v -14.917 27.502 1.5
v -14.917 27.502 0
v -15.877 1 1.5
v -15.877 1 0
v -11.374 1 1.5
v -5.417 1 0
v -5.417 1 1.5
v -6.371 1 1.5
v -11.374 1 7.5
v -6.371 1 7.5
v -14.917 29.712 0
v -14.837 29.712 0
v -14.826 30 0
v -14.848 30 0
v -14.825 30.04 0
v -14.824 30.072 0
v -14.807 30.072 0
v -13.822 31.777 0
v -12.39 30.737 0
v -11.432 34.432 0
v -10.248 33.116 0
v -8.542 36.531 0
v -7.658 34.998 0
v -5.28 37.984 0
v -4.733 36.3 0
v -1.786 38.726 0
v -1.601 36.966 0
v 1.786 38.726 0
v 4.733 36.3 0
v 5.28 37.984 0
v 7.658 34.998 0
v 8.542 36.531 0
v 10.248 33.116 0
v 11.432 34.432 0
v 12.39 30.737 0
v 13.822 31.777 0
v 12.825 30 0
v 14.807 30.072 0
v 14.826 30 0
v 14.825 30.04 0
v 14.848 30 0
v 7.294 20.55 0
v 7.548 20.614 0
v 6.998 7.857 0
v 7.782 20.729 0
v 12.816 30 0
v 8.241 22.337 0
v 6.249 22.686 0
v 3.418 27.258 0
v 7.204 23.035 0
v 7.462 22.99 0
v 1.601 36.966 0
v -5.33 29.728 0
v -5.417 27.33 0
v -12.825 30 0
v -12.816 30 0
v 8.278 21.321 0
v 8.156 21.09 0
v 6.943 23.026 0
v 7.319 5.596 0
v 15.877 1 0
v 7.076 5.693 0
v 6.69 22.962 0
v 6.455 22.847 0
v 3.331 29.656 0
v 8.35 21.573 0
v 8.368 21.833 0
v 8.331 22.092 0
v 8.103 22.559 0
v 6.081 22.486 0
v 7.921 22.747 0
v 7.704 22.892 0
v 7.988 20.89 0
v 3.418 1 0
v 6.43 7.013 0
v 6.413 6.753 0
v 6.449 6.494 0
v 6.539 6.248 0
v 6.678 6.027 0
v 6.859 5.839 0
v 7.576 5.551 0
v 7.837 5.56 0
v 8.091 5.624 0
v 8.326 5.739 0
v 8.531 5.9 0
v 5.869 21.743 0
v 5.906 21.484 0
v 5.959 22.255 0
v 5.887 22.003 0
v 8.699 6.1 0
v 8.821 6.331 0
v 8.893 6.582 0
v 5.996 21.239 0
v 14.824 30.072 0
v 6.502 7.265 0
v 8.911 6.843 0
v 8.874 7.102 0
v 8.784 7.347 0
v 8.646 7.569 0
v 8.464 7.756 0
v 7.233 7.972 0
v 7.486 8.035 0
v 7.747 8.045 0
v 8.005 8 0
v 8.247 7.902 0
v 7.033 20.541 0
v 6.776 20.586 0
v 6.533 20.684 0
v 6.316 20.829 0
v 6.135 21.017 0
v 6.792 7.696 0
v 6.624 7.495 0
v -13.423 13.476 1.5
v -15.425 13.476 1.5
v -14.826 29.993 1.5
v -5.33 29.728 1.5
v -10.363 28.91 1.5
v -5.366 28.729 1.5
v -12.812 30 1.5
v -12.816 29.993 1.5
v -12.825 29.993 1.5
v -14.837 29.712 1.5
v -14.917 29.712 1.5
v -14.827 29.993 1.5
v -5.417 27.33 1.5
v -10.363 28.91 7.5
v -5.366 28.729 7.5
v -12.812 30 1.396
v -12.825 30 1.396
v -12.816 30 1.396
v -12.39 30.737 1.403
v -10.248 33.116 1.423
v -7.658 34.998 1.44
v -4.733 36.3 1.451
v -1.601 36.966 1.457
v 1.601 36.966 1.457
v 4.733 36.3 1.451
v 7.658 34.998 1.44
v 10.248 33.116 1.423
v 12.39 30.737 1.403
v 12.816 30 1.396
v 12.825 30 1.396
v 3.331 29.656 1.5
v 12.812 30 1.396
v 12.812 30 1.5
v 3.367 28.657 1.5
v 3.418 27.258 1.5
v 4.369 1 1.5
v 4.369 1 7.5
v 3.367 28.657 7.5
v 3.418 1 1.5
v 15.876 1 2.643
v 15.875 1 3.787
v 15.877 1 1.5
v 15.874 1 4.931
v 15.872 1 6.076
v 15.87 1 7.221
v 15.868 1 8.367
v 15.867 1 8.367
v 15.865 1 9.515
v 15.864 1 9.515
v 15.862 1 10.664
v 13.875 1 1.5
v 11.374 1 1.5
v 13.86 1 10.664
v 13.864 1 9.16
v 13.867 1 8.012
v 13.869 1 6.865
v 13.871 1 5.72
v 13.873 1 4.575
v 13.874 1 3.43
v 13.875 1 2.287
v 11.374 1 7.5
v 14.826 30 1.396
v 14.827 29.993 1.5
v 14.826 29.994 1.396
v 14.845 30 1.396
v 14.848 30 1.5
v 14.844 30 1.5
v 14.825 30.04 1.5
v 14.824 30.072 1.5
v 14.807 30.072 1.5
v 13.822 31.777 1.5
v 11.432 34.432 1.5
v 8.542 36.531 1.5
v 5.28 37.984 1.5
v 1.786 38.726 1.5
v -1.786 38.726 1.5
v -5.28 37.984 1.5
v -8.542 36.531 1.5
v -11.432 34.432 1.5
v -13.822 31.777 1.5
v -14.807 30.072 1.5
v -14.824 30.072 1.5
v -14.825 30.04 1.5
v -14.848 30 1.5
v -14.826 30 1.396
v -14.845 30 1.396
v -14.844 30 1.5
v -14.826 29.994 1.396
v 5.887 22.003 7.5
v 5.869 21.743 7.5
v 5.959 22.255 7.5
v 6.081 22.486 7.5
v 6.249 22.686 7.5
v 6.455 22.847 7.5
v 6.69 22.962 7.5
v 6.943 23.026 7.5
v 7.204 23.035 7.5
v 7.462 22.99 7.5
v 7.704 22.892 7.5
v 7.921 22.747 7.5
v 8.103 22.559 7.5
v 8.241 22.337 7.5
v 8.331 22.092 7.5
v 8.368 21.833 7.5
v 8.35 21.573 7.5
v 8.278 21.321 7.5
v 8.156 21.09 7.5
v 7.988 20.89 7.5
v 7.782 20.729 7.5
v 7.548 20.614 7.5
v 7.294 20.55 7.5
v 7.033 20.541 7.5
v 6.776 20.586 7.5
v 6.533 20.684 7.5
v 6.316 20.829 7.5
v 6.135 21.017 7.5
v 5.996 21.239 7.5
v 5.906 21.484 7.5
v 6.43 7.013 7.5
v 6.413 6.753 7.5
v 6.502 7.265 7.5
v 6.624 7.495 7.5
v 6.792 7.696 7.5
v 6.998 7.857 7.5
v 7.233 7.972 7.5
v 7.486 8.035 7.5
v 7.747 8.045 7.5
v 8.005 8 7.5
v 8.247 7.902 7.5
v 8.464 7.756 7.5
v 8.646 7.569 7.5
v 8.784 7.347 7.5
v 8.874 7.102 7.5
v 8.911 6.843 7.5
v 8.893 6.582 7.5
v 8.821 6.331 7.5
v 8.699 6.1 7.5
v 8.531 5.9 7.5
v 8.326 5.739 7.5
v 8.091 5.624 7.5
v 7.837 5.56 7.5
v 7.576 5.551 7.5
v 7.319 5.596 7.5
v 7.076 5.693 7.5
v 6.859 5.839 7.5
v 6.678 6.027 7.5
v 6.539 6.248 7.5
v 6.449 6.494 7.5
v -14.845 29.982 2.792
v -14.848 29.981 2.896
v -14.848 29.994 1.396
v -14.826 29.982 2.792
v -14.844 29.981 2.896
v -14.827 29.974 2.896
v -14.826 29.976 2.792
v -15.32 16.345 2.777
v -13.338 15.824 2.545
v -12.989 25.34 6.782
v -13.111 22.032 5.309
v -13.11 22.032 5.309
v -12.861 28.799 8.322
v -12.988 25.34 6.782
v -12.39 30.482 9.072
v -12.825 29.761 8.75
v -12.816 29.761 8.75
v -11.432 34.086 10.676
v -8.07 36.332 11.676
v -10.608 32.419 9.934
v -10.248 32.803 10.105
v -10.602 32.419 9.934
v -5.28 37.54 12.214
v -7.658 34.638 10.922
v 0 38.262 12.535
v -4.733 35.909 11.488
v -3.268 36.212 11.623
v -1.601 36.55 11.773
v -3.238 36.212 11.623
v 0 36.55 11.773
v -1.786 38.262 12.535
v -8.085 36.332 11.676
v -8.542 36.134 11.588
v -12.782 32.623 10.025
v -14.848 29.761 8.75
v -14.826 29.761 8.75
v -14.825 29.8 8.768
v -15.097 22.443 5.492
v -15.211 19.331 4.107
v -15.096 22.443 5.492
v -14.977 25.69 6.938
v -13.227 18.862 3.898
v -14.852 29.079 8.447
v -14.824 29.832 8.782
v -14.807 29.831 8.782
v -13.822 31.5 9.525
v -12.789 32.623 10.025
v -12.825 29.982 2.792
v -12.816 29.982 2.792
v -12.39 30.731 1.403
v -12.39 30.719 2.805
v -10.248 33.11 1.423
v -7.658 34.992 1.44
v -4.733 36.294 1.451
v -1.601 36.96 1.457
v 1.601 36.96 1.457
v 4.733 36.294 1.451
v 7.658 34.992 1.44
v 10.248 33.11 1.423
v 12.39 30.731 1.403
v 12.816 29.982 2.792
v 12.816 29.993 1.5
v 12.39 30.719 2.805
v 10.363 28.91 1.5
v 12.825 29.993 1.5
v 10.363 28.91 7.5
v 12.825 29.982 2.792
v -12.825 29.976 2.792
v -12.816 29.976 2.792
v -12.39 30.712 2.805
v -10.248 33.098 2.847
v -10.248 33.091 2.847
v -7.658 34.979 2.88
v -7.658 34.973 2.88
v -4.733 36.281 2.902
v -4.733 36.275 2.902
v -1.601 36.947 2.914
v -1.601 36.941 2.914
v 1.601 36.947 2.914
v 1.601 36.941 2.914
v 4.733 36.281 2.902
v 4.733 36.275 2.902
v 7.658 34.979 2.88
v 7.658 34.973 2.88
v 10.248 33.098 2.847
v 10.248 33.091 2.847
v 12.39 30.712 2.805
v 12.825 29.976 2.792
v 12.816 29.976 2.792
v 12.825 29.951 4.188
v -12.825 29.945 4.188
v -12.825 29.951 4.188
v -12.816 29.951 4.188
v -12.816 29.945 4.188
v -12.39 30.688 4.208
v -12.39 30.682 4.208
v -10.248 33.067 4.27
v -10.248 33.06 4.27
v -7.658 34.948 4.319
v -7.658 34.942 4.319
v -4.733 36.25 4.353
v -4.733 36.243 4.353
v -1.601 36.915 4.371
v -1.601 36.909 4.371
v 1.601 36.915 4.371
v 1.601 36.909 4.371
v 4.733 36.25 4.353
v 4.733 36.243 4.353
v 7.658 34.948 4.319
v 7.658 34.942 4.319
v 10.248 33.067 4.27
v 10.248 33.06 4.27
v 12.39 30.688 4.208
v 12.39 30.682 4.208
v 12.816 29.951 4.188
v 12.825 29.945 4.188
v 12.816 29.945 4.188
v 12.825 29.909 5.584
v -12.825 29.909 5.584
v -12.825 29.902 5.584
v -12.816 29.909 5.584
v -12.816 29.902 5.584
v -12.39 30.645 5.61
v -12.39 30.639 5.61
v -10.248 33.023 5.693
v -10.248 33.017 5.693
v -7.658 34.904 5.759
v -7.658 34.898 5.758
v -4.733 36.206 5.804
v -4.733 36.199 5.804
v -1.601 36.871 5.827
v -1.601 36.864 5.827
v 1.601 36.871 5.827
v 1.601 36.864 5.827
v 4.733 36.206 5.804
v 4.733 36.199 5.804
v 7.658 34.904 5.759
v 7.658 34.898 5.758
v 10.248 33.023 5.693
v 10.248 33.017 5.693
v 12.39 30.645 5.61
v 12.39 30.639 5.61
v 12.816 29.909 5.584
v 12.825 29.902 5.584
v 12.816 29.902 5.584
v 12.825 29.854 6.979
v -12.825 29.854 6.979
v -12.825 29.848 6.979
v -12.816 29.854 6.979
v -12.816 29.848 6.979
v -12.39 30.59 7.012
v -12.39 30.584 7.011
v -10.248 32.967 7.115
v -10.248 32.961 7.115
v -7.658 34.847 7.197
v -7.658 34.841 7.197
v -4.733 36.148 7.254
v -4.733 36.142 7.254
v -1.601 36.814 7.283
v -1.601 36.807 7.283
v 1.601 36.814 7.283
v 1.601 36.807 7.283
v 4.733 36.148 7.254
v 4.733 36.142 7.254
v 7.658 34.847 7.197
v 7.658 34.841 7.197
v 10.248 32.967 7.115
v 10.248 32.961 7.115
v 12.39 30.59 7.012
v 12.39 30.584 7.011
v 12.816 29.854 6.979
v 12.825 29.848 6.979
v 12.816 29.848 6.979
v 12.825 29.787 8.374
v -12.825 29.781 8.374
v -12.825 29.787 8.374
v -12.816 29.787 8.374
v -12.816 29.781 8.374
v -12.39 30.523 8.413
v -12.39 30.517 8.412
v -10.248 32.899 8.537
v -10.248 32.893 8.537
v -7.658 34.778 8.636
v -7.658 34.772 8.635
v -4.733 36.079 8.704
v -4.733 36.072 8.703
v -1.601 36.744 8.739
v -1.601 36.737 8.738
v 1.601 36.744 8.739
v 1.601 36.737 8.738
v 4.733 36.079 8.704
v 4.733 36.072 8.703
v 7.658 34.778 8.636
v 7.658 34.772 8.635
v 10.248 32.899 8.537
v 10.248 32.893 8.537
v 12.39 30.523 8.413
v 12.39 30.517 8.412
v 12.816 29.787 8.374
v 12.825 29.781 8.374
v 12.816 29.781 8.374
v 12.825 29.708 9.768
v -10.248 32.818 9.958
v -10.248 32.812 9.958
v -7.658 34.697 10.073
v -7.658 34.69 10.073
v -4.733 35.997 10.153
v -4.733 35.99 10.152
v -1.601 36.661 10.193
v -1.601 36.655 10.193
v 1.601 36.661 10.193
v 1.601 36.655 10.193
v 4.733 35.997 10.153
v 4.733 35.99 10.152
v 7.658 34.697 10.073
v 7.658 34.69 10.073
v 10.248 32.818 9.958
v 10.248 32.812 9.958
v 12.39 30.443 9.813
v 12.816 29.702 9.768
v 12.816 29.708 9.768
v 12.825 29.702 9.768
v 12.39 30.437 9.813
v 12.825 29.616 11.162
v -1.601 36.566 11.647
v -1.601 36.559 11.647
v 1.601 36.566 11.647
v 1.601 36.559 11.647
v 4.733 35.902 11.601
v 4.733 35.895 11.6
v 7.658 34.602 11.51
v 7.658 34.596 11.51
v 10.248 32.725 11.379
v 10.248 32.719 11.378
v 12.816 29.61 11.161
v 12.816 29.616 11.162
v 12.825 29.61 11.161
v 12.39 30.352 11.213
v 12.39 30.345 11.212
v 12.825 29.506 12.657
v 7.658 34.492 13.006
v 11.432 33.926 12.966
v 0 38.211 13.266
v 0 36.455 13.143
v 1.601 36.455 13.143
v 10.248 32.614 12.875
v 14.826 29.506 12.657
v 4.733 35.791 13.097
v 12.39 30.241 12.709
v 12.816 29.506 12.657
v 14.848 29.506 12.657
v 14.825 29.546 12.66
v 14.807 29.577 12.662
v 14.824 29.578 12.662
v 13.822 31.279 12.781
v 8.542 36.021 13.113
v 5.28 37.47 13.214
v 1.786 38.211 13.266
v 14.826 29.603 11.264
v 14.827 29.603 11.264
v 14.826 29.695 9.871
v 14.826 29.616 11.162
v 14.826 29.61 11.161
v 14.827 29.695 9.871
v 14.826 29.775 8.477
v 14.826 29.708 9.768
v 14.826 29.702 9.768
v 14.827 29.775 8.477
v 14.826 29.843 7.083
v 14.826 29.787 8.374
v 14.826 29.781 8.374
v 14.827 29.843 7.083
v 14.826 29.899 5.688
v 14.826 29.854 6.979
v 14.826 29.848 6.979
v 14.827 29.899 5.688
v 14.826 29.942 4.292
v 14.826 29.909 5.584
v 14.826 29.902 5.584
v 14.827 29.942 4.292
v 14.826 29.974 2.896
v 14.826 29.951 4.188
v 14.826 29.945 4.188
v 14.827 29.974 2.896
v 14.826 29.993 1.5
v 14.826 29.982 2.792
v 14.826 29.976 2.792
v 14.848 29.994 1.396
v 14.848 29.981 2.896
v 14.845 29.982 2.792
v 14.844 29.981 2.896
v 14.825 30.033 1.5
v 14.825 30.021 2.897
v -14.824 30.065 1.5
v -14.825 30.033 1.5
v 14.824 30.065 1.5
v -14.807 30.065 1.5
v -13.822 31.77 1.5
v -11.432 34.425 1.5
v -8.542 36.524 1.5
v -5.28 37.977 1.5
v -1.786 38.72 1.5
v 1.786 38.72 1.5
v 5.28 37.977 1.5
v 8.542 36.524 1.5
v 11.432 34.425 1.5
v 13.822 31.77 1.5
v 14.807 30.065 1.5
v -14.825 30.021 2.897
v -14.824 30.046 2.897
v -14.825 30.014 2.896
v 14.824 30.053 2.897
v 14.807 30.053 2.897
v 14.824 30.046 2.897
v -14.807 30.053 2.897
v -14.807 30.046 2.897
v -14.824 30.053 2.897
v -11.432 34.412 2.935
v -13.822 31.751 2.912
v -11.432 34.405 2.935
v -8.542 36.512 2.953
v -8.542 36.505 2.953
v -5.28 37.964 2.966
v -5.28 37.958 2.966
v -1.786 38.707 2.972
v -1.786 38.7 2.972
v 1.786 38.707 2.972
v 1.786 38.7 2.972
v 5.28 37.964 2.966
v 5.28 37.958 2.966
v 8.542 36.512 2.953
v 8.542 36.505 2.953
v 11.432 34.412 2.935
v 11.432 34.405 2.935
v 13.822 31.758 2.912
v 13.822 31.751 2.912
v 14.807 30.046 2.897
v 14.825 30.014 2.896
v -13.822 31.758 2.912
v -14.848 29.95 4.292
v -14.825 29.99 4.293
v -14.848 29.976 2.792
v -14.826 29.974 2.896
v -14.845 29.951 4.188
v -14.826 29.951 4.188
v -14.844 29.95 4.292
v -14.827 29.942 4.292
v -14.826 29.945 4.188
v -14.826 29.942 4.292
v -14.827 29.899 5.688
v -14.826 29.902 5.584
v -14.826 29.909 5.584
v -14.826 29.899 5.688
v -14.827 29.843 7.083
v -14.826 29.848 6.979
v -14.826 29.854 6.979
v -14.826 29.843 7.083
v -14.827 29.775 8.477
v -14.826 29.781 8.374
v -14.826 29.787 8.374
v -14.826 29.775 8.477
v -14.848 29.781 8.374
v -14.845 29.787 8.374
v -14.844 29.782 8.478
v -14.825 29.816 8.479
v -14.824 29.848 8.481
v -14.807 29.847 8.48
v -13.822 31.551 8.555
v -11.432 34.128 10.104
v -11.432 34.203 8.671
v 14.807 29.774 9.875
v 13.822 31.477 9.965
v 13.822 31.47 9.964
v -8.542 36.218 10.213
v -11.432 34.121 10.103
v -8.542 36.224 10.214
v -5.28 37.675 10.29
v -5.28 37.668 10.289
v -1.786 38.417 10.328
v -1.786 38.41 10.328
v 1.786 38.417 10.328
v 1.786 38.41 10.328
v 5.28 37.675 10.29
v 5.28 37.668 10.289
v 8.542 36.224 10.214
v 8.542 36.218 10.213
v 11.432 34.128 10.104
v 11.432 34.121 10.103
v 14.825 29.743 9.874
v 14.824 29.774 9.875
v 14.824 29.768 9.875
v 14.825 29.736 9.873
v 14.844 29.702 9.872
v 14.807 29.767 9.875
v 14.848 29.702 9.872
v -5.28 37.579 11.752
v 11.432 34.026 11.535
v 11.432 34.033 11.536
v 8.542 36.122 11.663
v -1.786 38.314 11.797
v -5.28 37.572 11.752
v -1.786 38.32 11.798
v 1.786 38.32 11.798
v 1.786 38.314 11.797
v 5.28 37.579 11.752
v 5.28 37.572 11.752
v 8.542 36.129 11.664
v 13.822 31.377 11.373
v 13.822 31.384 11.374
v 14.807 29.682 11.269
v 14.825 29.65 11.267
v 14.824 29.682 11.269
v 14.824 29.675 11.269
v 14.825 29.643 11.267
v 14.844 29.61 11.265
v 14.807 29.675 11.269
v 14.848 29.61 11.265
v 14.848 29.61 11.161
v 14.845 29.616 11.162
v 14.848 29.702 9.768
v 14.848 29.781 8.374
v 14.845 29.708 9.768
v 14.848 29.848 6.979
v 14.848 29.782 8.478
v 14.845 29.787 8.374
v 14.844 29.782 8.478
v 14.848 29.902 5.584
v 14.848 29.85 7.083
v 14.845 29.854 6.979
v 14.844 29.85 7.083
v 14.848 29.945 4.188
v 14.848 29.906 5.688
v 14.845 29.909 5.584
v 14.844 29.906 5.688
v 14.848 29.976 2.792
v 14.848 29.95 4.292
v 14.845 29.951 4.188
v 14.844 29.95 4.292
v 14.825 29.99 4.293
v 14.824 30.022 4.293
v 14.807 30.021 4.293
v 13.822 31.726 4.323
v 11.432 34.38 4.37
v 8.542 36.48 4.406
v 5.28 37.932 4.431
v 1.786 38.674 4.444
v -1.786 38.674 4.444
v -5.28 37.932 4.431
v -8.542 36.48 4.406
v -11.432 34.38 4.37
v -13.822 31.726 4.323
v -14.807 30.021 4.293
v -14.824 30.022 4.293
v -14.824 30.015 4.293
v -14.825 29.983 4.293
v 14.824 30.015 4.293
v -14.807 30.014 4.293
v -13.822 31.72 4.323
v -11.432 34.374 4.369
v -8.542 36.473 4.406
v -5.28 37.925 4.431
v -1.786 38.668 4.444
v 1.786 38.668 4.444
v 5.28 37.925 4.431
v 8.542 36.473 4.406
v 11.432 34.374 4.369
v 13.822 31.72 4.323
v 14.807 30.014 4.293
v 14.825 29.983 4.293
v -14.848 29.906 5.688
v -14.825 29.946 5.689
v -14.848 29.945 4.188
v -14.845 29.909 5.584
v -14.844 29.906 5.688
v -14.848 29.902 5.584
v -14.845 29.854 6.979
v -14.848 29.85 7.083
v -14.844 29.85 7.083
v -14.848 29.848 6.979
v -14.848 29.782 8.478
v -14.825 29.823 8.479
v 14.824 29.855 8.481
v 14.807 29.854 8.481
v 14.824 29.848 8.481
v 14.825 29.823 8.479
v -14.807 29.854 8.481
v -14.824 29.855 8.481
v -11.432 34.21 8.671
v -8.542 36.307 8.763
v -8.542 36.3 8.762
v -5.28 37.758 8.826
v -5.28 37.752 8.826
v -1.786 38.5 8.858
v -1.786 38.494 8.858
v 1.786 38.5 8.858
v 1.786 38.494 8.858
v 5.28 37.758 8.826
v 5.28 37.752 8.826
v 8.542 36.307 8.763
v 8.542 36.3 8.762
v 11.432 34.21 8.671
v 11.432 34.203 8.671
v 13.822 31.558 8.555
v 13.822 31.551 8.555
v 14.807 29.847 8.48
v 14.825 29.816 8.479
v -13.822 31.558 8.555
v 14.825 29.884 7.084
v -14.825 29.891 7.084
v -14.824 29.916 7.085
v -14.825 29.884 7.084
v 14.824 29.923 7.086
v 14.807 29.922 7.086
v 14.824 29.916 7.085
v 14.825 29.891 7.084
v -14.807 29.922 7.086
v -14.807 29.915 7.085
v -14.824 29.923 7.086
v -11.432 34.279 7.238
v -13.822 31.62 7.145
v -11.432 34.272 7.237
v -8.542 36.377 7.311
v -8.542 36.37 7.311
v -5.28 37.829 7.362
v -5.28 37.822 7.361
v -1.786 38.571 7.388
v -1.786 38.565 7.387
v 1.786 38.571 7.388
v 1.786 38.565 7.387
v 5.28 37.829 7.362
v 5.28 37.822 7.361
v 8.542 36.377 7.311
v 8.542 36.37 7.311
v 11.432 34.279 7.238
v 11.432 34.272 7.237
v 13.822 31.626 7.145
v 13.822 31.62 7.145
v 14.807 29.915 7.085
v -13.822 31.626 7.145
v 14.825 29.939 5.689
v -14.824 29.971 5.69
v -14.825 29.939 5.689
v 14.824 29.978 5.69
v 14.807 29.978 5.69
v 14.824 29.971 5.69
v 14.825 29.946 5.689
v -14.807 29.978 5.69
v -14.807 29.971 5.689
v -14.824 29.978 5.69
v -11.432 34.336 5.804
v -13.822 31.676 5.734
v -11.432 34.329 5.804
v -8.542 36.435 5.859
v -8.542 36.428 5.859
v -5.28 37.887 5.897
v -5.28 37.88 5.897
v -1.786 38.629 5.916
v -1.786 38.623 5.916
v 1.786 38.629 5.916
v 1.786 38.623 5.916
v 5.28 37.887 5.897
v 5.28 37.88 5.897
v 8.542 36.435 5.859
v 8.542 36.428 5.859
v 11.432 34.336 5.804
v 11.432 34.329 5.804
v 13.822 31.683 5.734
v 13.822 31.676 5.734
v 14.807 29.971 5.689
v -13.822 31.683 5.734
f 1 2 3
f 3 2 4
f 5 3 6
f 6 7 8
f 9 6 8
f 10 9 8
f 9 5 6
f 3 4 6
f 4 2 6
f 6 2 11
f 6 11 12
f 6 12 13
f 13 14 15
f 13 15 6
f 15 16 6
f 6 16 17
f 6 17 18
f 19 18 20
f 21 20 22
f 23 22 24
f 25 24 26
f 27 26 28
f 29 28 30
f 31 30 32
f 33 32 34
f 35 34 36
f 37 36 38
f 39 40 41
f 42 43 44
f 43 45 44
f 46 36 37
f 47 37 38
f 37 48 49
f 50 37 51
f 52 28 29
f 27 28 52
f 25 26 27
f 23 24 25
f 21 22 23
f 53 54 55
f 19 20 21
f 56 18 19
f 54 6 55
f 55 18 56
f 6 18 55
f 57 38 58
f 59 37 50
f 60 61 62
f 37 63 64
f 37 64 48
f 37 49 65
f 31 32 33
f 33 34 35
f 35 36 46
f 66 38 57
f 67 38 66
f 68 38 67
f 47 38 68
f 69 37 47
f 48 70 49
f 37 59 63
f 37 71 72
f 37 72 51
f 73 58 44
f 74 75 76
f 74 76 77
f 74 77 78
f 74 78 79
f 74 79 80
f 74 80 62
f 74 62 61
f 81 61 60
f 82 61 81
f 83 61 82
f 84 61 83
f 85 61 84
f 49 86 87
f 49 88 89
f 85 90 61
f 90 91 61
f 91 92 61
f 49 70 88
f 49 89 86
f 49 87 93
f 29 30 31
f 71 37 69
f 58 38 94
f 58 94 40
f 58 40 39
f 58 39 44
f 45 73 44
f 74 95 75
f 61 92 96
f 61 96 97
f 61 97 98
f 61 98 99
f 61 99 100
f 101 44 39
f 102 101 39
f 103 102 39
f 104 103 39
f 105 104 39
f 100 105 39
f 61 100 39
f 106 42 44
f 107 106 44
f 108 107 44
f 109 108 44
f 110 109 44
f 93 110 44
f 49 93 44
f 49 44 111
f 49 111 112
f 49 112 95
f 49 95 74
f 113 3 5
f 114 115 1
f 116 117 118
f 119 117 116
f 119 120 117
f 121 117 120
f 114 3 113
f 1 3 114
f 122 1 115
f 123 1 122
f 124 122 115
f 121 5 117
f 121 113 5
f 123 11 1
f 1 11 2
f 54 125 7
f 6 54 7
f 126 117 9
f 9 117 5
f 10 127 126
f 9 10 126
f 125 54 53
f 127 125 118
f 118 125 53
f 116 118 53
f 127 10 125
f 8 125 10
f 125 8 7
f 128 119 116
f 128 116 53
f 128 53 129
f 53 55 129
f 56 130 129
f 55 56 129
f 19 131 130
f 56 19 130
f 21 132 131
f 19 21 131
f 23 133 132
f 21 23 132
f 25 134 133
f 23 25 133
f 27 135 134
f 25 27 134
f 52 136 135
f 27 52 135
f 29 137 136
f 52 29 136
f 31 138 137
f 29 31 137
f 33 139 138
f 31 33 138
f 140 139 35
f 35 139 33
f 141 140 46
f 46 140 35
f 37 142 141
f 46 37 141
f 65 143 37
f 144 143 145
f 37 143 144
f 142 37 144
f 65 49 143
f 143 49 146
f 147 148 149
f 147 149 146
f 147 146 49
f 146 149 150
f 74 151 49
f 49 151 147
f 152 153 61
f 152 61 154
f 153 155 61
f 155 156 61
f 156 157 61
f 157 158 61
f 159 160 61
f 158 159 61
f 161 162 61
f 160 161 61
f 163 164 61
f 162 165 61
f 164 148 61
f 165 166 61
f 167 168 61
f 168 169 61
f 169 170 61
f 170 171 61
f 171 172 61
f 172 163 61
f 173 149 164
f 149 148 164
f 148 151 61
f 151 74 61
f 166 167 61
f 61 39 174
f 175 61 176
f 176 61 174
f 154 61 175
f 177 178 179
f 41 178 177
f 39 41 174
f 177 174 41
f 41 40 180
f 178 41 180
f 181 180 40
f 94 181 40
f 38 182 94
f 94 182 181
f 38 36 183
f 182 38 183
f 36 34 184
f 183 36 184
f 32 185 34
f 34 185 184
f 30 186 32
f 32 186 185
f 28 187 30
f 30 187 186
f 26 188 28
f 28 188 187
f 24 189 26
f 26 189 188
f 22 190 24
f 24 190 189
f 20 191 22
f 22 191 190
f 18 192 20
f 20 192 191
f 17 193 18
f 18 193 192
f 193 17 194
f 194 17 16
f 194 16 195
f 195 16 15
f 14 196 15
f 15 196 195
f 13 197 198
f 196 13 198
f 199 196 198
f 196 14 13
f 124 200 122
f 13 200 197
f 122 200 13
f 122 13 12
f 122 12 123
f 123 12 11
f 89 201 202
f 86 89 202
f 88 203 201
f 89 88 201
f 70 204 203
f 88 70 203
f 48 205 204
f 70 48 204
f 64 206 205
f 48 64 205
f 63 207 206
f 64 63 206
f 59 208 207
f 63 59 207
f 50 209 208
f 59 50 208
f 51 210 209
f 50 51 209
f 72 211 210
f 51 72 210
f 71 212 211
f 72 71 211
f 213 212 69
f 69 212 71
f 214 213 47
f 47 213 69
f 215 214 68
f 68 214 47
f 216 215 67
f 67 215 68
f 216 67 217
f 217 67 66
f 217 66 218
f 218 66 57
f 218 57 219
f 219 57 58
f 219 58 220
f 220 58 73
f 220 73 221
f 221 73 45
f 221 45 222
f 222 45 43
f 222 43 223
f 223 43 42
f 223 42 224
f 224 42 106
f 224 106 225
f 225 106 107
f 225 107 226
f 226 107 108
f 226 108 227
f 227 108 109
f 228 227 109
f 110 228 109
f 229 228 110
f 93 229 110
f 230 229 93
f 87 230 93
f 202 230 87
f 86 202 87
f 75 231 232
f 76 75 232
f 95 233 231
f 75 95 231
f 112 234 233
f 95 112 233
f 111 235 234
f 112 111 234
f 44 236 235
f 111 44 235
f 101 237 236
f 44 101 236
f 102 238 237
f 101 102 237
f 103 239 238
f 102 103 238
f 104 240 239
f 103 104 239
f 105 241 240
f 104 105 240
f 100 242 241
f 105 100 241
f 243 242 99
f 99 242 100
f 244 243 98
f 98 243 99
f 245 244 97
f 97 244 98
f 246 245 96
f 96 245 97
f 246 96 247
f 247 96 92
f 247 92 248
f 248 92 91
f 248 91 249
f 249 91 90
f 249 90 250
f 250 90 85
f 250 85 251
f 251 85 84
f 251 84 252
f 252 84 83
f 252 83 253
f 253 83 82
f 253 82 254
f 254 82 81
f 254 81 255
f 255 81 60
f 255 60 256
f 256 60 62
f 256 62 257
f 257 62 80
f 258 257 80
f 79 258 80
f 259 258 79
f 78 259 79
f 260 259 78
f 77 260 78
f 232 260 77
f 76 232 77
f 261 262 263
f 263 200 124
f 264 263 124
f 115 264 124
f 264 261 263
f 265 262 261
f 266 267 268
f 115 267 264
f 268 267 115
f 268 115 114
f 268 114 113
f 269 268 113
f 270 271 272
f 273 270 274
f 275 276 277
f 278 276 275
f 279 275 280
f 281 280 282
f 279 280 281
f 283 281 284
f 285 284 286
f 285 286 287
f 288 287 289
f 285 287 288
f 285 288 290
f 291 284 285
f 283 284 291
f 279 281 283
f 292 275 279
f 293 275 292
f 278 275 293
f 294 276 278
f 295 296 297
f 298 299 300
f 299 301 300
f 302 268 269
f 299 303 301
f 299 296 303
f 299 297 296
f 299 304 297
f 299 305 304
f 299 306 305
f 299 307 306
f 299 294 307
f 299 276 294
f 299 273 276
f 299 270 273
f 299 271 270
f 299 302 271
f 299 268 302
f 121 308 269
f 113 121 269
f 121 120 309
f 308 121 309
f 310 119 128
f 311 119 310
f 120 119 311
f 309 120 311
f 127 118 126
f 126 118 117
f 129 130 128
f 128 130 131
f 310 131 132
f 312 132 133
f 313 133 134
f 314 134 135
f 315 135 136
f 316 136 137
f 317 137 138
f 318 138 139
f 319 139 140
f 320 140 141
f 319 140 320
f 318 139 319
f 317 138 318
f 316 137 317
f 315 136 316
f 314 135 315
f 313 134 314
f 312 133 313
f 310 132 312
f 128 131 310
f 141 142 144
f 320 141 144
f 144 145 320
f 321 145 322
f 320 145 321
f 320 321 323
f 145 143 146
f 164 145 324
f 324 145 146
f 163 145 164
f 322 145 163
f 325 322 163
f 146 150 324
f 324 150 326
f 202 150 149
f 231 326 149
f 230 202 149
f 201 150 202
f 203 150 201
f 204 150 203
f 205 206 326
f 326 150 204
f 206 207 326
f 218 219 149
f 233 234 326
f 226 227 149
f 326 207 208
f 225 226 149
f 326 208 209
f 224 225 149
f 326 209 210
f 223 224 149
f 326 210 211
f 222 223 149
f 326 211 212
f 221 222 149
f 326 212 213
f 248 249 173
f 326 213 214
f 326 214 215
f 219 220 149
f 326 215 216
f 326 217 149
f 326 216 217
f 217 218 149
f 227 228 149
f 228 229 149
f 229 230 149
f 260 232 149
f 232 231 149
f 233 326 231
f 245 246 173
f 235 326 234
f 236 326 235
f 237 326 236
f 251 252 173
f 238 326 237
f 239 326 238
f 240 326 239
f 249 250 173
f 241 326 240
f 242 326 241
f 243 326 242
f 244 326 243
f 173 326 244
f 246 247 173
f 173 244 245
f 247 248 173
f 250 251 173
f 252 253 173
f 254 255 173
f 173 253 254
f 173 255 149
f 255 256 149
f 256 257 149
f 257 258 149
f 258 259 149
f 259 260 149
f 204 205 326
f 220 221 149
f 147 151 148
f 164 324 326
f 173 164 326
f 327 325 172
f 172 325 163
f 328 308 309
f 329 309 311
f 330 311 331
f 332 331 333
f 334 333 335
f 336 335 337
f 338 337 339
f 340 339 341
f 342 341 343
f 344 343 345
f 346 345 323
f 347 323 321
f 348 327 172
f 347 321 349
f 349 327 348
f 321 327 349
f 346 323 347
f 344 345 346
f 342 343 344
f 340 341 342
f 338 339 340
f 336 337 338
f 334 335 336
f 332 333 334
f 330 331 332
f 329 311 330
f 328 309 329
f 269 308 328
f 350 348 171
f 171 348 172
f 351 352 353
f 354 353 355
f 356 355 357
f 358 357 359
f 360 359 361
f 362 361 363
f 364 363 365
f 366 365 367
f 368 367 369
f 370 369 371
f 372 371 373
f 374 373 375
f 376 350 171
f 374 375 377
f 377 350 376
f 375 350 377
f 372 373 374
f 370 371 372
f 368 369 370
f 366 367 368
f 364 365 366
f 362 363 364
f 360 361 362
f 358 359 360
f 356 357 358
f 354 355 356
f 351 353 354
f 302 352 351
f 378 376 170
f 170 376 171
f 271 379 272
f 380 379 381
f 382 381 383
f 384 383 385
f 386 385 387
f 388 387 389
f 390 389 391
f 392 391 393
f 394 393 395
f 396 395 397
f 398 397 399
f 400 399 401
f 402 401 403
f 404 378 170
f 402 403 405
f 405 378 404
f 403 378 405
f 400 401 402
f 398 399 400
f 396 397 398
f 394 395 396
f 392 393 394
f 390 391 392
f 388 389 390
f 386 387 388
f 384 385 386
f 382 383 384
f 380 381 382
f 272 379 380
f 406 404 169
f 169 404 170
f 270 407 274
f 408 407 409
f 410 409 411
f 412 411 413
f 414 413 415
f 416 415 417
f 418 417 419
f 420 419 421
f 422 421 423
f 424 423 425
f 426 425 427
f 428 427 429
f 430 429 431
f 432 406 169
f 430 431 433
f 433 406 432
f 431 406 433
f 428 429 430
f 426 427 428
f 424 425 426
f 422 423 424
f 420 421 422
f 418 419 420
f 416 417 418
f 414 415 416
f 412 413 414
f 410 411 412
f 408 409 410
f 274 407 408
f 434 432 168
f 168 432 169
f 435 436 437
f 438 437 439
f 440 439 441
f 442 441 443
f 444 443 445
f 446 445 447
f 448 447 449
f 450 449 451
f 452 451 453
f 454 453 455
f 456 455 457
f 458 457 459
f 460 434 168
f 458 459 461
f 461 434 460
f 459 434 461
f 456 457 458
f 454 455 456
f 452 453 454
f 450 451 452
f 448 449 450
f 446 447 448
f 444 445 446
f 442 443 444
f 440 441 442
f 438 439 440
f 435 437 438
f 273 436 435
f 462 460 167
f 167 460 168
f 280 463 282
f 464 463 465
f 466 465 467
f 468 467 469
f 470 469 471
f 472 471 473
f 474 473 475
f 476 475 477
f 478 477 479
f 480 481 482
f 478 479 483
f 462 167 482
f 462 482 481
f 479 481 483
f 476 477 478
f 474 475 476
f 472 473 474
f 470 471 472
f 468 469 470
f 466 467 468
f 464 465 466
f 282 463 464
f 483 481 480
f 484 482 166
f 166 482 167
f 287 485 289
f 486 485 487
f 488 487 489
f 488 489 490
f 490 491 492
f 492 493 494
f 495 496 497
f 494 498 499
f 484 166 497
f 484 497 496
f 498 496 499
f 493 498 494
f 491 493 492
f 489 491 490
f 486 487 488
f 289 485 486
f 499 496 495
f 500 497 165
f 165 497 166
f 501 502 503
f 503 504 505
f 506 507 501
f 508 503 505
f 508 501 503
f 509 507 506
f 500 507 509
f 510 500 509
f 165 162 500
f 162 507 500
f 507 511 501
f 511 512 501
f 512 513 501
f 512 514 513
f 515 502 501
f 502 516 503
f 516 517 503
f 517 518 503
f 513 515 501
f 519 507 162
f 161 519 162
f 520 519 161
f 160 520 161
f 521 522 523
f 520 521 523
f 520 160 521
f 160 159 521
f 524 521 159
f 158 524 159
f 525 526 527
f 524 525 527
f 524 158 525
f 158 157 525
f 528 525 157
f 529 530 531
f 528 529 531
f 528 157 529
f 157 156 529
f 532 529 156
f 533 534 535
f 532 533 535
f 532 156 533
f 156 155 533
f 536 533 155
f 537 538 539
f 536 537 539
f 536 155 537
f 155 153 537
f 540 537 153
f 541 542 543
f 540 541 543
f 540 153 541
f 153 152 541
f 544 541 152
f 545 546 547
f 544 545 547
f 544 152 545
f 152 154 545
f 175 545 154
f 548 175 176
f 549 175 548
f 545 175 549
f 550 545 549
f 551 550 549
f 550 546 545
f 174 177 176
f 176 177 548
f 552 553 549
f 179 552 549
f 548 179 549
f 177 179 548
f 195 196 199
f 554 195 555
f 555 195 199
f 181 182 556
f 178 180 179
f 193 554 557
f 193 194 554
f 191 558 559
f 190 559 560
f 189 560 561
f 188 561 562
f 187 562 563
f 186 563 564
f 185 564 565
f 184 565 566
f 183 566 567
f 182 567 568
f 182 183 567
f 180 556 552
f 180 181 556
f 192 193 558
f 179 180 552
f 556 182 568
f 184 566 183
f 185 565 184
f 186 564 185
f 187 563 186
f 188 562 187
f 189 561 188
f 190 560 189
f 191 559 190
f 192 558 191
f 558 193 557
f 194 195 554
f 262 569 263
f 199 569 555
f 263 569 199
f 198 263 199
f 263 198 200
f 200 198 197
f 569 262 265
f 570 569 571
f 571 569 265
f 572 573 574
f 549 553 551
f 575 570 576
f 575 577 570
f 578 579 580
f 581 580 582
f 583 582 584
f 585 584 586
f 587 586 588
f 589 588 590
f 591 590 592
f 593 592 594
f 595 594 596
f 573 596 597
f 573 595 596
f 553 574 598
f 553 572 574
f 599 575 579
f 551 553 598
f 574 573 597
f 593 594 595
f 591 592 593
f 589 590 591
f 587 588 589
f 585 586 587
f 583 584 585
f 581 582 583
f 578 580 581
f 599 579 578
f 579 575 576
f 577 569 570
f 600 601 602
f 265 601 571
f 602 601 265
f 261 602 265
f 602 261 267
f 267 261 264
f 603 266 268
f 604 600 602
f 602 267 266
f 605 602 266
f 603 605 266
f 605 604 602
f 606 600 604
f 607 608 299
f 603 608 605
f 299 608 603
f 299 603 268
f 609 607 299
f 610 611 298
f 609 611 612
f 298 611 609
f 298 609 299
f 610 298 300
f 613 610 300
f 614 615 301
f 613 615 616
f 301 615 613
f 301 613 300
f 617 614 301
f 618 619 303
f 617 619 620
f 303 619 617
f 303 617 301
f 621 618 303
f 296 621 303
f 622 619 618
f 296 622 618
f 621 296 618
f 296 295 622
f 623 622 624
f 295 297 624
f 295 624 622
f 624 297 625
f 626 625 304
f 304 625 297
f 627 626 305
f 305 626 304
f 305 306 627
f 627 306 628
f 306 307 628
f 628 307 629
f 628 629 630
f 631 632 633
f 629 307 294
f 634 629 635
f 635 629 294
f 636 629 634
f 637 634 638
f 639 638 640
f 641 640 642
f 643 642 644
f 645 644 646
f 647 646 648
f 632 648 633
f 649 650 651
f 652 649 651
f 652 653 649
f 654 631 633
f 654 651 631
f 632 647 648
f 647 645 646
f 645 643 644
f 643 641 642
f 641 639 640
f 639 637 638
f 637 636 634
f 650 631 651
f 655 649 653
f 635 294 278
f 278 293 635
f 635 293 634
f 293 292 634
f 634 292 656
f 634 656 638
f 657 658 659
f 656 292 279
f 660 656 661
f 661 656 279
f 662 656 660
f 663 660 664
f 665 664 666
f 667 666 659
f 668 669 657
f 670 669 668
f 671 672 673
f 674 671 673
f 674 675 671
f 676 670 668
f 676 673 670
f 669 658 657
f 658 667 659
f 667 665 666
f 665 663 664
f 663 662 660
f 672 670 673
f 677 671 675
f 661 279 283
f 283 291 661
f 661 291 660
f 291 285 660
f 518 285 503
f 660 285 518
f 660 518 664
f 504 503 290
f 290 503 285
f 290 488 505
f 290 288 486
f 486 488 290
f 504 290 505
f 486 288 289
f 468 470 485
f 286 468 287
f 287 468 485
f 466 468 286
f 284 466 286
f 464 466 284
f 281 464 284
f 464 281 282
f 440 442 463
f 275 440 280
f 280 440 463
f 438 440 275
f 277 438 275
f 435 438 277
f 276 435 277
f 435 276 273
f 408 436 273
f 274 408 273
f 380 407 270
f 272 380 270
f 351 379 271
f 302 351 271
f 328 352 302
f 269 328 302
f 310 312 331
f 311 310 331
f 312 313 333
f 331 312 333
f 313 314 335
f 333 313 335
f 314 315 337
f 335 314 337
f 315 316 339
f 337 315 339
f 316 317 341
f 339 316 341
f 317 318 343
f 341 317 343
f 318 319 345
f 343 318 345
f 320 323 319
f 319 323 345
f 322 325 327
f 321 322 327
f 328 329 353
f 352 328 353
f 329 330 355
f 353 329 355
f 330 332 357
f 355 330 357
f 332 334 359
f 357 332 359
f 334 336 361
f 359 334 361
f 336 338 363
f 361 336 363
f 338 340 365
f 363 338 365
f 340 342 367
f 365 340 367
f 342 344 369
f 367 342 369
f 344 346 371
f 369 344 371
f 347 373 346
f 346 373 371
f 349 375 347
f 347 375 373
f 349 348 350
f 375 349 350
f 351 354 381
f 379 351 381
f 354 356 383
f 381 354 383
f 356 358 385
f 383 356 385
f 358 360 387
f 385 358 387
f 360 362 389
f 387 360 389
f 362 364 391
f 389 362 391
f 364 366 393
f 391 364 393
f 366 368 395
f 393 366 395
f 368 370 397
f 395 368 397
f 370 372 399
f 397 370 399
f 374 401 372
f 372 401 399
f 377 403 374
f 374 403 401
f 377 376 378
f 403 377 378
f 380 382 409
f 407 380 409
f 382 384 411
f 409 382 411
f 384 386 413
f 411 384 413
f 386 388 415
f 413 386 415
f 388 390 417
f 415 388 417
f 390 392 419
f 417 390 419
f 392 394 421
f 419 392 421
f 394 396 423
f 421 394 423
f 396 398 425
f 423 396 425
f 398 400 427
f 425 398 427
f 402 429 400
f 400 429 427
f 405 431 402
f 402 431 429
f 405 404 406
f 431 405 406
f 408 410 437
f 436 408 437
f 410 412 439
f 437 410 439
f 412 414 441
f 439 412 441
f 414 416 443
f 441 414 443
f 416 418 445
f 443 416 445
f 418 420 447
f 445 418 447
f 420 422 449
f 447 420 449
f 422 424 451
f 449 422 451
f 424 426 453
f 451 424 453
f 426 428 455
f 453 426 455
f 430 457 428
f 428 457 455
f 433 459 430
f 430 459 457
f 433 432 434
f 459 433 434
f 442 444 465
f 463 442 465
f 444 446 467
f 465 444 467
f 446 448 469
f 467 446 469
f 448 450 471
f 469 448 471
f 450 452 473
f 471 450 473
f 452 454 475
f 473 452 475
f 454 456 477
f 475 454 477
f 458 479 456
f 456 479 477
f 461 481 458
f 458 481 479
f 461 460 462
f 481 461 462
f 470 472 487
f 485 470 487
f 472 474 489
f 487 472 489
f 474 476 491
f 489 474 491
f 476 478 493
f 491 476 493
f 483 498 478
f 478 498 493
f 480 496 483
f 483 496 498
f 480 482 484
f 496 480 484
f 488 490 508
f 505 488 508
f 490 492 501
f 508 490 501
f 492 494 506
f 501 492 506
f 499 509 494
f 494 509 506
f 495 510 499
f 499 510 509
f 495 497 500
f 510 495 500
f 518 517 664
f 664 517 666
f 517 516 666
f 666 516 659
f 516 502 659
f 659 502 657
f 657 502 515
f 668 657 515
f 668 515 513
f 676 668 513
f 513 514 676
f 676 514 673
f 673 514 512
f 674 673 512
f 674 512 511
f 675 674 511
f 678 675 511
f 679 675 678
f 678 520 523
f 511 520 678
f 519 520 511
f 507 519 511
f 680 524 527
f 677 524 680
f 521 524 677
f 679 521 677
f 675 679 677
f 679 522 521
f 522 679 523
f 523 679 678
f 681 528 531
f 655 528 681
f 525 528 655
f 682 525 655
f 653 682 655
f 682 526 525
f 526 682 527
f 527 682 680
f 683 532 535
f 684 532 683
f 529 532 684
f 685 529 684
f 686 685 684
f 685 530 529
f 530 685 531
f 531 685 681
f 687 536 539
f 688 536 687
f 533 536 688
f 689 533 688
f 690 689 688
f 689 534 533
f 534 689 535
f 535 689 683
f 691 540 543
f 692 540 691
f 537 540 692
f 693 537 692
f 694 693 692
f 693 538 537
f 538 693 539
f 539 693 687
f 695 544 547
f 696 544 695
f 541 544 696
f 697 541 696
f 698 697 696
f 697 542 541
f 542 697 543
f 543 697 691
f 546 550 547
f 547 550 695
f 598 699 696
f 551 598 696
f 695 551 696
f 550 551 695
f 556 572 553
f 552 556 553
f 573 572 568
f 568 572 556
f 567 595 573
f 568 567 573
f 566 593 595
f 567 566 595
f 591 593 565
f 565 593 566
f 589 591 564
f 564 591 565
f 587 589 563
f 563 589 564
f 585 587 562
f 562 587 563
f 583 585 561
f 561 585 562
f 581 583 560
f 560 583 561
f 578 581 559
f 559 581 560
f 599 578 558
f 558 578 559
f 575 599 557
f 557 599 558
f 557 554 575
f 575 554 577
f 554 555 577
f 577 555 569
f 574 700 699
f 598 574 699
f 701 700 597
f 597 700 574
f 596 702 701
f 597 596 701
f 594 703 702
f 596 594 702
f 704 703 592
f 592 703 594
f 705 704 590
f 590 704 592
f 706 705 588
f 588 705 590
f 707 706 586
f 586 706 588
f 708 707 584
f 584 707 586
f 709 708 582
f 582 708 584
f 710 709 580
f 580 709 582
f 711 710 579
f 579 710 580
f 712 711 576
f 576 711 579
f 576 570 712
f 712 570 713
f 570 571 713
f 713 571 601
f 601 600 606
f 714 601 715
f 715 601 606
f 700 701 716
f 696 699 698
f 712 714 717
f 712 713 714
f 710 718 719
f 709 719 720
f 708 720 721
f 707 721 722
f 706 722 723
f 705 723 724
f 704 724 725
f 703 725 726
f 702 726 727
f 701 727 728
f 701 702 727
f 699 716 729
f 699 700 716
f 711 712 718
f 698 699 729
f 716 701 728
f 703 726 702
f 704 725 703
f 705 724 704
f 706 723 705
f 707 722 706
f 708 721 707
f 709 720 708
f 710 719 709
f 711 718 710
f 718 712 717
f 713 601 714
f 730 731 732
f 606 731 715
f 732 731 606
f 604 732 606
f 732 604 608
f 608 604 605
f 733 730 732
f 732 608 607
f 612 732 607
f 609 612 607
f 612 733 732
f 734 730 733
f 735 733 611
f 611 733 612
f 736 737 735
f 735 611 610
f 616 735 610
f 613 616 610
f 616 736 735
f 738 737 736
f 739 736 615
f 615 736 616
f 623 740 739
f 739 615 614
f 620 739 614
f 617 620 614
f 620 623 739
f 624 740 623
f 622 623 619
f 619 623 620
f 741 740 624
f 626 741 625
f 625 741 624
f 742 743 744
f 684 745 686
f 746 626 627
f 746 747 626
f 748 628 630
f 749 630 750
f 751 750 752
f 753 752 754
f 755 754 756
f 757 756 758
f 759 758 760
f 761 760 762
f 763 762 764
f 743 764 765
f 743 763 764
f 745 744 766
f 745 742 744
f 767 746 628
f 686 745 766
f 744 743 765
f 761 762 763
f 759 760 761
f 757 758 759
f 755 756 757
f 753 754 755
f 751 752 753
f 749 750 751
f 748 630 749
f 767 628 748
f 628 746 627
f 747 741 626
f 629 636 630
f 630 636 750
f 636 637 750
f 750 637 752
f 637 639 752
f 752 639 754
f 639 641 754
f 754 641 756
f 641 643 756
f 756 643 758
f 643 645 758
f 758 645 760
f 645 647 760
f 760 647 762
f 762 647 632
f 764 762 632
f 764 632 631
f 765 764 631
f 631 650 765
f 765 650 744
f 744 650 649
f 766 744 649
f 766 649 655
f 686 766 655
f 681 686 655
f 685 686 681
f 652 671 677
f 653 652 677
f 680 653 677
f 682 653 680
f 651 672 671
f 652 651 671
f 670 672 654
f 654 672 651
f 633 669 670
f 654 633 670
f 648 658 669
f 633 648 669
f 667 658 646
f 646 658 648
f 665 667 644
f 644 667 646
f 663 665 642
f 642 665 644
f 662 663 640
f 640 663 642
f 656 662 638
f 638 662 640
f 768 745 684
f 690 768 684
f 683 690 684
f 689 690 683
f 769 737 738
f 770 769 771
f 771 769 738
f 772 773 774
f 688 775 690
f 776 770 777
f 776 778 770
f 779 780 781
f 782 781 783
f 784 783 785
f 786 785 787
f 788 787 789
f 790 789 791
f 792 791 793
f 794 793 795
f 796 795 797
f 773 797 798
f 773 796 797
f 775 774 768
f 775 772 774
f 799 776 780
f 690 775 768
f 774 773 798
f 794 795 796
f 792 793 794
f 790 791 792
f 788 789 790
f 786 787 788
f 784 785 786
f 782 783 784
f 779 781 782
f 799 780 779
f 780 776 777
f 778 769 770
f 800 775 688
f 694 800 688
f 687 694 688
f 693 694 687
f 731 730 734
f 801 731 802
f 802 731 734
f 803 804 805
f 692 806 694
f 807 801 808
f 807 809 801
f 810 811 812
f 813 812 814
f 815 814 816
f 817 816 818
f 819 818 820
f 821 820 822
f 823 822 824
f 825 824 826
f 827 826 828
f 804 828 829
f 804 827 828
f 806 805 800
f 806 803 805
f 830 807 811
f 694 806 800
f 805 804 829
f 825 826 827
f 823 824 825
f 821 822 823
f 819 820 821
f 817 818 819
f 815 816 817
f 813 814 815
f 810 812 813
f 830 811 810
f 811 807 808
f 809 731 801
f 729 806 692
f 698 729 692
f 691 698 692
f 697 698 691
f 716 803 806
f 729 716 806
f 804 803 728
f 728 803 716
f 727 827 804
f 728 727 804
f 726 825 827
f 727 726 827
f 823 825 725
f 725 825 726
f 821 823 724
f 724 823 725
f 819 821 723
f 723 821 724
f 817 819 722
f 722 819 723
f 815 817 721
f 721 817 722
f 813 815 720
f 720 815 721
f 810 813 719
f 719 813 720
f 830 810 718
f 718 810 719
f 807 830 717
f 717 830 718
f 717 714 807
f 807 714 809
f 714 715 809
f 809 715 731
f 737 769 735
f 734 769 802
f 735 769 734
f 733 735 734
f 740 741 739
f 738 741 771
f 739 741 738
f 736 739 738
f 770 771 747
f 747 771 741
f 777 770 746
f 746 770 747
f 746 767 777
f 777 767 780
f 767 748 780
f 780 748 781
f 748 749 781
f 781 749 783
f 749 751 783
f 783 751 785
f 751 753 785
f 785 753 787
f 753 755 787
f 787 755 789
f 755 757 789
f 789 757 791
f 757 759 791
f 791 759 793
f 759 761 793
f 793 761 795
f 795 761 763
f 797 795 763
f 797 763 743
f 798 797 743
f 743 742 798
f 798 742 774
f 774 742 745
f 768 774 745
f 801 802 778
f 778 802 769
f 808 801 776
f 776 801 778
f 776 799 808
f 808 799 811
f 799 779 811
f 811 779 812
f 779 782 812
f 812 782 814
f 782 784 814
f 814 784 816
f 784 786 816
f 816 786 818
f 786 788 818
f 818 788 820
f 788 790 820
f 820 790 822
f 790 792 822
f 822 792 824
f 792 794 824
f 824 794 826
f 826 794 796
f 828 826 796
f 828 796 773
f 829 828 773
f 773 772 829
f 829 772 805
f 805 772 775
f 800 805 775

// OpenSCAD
rad_hood = 30.53 / 2;
dim_min_width = 25.65; // 25.65 was measured
ang_arms = 4.15;
dim_depth = 30;
dim_height = 1.5;
dim_wall = 2;
rad_shroud = 130;
rad_m3_tap = 2.5 / 2;

shroudWithoutInterference();

module shroudWithoutInterference(){
	difference() {
		shroud();
		difference() {
			translate([0,0,-4.5])rotate([24,0,0])mirror([1,0,0])cube(60);
			translate([ -12, 0, 0])cube(30);
			cube([120,120,2 * dim_height], center = true);
		}
		cube([40,2,30], center = true);
	}
}

module shroud(){
	translate([0, -1 * rad_shroud, 0])for(r = [0:0.5:4])rotate([ r, 0, 0])
	translate([0, dim_depth + rad_shroud, 0]){
		arm();
		mirror([ 1, 0, 0])arm();
		curve();
	}
	translate([0, dim_depth, 0]){
		arm(stoppers=true, extra=true);
		mirror([ 1, 0, 0])arm(stoppers = true);
	}
}

module curve(){
	$fn = 30;
	curve_orig = -1 *(rad_hood - 7) ;
	difference() {
		translate([ 0, curve_orig, 0])difference() {
			cylinder(r=rad_hood + dim_wall - 0.18, h=dim_height);
			translate([ 0, 0, -1])cylinder(r=rad_hood + 0.05, h=dim_height + 2);
		}
	translate([ -2 * rad_hood, -2 * rad_hood, -1])cube([rad_hood * 4, rad_hood * 2, dim_height + 2]);
	}
}

module arm(stoppers = false, extra = false){
	shroud_thickness = 2.5;
	offset = stoppers ?  (shroud_thickness + 5) : 0;
	wallAmt = extra ? 7 : 5;
	mounting = extra ? -3 : -1;

	translate([ dim_min_width * 0.5, 0, 0])rotate([ 0, 0, ang_arms * 0.5])translate([ -1 * offset, -1 * dim_depth, 0]){
		if(offset == 0){
			cube([dim_wall + offset, dim_depth, dim_height]);
		}
		if(extra){
				translate([ -2, dim_depth - 2, 0])cube([2, 2, dim_height]);
		}

		if(offset != 0){
			difference() {
				union(){
					cube([dim_wall + offset, dim_depth, dim_height]);
					translate([ 5 - wallAmt, 0, 0])cube([wallAmt, dim_depth - 1, dim_height * 5]);
					translate([ mounting, 0, 0])rotate([ 0, 0, -0.5 * ang_arms])cube([dim_wall + offset, dim_depth, dim_height]);
				}
				if(extra){
					translate([ 1.5, 7, 0])cylinder(r= rad_m3_tap, h=50, center=true, $fn=30);
					translate([ 1.5, 7 + 15, 0])cylinder(r= rad_m3_tap, h=50, center=true, $fn=30);
				}
			}
		}
	}
}
